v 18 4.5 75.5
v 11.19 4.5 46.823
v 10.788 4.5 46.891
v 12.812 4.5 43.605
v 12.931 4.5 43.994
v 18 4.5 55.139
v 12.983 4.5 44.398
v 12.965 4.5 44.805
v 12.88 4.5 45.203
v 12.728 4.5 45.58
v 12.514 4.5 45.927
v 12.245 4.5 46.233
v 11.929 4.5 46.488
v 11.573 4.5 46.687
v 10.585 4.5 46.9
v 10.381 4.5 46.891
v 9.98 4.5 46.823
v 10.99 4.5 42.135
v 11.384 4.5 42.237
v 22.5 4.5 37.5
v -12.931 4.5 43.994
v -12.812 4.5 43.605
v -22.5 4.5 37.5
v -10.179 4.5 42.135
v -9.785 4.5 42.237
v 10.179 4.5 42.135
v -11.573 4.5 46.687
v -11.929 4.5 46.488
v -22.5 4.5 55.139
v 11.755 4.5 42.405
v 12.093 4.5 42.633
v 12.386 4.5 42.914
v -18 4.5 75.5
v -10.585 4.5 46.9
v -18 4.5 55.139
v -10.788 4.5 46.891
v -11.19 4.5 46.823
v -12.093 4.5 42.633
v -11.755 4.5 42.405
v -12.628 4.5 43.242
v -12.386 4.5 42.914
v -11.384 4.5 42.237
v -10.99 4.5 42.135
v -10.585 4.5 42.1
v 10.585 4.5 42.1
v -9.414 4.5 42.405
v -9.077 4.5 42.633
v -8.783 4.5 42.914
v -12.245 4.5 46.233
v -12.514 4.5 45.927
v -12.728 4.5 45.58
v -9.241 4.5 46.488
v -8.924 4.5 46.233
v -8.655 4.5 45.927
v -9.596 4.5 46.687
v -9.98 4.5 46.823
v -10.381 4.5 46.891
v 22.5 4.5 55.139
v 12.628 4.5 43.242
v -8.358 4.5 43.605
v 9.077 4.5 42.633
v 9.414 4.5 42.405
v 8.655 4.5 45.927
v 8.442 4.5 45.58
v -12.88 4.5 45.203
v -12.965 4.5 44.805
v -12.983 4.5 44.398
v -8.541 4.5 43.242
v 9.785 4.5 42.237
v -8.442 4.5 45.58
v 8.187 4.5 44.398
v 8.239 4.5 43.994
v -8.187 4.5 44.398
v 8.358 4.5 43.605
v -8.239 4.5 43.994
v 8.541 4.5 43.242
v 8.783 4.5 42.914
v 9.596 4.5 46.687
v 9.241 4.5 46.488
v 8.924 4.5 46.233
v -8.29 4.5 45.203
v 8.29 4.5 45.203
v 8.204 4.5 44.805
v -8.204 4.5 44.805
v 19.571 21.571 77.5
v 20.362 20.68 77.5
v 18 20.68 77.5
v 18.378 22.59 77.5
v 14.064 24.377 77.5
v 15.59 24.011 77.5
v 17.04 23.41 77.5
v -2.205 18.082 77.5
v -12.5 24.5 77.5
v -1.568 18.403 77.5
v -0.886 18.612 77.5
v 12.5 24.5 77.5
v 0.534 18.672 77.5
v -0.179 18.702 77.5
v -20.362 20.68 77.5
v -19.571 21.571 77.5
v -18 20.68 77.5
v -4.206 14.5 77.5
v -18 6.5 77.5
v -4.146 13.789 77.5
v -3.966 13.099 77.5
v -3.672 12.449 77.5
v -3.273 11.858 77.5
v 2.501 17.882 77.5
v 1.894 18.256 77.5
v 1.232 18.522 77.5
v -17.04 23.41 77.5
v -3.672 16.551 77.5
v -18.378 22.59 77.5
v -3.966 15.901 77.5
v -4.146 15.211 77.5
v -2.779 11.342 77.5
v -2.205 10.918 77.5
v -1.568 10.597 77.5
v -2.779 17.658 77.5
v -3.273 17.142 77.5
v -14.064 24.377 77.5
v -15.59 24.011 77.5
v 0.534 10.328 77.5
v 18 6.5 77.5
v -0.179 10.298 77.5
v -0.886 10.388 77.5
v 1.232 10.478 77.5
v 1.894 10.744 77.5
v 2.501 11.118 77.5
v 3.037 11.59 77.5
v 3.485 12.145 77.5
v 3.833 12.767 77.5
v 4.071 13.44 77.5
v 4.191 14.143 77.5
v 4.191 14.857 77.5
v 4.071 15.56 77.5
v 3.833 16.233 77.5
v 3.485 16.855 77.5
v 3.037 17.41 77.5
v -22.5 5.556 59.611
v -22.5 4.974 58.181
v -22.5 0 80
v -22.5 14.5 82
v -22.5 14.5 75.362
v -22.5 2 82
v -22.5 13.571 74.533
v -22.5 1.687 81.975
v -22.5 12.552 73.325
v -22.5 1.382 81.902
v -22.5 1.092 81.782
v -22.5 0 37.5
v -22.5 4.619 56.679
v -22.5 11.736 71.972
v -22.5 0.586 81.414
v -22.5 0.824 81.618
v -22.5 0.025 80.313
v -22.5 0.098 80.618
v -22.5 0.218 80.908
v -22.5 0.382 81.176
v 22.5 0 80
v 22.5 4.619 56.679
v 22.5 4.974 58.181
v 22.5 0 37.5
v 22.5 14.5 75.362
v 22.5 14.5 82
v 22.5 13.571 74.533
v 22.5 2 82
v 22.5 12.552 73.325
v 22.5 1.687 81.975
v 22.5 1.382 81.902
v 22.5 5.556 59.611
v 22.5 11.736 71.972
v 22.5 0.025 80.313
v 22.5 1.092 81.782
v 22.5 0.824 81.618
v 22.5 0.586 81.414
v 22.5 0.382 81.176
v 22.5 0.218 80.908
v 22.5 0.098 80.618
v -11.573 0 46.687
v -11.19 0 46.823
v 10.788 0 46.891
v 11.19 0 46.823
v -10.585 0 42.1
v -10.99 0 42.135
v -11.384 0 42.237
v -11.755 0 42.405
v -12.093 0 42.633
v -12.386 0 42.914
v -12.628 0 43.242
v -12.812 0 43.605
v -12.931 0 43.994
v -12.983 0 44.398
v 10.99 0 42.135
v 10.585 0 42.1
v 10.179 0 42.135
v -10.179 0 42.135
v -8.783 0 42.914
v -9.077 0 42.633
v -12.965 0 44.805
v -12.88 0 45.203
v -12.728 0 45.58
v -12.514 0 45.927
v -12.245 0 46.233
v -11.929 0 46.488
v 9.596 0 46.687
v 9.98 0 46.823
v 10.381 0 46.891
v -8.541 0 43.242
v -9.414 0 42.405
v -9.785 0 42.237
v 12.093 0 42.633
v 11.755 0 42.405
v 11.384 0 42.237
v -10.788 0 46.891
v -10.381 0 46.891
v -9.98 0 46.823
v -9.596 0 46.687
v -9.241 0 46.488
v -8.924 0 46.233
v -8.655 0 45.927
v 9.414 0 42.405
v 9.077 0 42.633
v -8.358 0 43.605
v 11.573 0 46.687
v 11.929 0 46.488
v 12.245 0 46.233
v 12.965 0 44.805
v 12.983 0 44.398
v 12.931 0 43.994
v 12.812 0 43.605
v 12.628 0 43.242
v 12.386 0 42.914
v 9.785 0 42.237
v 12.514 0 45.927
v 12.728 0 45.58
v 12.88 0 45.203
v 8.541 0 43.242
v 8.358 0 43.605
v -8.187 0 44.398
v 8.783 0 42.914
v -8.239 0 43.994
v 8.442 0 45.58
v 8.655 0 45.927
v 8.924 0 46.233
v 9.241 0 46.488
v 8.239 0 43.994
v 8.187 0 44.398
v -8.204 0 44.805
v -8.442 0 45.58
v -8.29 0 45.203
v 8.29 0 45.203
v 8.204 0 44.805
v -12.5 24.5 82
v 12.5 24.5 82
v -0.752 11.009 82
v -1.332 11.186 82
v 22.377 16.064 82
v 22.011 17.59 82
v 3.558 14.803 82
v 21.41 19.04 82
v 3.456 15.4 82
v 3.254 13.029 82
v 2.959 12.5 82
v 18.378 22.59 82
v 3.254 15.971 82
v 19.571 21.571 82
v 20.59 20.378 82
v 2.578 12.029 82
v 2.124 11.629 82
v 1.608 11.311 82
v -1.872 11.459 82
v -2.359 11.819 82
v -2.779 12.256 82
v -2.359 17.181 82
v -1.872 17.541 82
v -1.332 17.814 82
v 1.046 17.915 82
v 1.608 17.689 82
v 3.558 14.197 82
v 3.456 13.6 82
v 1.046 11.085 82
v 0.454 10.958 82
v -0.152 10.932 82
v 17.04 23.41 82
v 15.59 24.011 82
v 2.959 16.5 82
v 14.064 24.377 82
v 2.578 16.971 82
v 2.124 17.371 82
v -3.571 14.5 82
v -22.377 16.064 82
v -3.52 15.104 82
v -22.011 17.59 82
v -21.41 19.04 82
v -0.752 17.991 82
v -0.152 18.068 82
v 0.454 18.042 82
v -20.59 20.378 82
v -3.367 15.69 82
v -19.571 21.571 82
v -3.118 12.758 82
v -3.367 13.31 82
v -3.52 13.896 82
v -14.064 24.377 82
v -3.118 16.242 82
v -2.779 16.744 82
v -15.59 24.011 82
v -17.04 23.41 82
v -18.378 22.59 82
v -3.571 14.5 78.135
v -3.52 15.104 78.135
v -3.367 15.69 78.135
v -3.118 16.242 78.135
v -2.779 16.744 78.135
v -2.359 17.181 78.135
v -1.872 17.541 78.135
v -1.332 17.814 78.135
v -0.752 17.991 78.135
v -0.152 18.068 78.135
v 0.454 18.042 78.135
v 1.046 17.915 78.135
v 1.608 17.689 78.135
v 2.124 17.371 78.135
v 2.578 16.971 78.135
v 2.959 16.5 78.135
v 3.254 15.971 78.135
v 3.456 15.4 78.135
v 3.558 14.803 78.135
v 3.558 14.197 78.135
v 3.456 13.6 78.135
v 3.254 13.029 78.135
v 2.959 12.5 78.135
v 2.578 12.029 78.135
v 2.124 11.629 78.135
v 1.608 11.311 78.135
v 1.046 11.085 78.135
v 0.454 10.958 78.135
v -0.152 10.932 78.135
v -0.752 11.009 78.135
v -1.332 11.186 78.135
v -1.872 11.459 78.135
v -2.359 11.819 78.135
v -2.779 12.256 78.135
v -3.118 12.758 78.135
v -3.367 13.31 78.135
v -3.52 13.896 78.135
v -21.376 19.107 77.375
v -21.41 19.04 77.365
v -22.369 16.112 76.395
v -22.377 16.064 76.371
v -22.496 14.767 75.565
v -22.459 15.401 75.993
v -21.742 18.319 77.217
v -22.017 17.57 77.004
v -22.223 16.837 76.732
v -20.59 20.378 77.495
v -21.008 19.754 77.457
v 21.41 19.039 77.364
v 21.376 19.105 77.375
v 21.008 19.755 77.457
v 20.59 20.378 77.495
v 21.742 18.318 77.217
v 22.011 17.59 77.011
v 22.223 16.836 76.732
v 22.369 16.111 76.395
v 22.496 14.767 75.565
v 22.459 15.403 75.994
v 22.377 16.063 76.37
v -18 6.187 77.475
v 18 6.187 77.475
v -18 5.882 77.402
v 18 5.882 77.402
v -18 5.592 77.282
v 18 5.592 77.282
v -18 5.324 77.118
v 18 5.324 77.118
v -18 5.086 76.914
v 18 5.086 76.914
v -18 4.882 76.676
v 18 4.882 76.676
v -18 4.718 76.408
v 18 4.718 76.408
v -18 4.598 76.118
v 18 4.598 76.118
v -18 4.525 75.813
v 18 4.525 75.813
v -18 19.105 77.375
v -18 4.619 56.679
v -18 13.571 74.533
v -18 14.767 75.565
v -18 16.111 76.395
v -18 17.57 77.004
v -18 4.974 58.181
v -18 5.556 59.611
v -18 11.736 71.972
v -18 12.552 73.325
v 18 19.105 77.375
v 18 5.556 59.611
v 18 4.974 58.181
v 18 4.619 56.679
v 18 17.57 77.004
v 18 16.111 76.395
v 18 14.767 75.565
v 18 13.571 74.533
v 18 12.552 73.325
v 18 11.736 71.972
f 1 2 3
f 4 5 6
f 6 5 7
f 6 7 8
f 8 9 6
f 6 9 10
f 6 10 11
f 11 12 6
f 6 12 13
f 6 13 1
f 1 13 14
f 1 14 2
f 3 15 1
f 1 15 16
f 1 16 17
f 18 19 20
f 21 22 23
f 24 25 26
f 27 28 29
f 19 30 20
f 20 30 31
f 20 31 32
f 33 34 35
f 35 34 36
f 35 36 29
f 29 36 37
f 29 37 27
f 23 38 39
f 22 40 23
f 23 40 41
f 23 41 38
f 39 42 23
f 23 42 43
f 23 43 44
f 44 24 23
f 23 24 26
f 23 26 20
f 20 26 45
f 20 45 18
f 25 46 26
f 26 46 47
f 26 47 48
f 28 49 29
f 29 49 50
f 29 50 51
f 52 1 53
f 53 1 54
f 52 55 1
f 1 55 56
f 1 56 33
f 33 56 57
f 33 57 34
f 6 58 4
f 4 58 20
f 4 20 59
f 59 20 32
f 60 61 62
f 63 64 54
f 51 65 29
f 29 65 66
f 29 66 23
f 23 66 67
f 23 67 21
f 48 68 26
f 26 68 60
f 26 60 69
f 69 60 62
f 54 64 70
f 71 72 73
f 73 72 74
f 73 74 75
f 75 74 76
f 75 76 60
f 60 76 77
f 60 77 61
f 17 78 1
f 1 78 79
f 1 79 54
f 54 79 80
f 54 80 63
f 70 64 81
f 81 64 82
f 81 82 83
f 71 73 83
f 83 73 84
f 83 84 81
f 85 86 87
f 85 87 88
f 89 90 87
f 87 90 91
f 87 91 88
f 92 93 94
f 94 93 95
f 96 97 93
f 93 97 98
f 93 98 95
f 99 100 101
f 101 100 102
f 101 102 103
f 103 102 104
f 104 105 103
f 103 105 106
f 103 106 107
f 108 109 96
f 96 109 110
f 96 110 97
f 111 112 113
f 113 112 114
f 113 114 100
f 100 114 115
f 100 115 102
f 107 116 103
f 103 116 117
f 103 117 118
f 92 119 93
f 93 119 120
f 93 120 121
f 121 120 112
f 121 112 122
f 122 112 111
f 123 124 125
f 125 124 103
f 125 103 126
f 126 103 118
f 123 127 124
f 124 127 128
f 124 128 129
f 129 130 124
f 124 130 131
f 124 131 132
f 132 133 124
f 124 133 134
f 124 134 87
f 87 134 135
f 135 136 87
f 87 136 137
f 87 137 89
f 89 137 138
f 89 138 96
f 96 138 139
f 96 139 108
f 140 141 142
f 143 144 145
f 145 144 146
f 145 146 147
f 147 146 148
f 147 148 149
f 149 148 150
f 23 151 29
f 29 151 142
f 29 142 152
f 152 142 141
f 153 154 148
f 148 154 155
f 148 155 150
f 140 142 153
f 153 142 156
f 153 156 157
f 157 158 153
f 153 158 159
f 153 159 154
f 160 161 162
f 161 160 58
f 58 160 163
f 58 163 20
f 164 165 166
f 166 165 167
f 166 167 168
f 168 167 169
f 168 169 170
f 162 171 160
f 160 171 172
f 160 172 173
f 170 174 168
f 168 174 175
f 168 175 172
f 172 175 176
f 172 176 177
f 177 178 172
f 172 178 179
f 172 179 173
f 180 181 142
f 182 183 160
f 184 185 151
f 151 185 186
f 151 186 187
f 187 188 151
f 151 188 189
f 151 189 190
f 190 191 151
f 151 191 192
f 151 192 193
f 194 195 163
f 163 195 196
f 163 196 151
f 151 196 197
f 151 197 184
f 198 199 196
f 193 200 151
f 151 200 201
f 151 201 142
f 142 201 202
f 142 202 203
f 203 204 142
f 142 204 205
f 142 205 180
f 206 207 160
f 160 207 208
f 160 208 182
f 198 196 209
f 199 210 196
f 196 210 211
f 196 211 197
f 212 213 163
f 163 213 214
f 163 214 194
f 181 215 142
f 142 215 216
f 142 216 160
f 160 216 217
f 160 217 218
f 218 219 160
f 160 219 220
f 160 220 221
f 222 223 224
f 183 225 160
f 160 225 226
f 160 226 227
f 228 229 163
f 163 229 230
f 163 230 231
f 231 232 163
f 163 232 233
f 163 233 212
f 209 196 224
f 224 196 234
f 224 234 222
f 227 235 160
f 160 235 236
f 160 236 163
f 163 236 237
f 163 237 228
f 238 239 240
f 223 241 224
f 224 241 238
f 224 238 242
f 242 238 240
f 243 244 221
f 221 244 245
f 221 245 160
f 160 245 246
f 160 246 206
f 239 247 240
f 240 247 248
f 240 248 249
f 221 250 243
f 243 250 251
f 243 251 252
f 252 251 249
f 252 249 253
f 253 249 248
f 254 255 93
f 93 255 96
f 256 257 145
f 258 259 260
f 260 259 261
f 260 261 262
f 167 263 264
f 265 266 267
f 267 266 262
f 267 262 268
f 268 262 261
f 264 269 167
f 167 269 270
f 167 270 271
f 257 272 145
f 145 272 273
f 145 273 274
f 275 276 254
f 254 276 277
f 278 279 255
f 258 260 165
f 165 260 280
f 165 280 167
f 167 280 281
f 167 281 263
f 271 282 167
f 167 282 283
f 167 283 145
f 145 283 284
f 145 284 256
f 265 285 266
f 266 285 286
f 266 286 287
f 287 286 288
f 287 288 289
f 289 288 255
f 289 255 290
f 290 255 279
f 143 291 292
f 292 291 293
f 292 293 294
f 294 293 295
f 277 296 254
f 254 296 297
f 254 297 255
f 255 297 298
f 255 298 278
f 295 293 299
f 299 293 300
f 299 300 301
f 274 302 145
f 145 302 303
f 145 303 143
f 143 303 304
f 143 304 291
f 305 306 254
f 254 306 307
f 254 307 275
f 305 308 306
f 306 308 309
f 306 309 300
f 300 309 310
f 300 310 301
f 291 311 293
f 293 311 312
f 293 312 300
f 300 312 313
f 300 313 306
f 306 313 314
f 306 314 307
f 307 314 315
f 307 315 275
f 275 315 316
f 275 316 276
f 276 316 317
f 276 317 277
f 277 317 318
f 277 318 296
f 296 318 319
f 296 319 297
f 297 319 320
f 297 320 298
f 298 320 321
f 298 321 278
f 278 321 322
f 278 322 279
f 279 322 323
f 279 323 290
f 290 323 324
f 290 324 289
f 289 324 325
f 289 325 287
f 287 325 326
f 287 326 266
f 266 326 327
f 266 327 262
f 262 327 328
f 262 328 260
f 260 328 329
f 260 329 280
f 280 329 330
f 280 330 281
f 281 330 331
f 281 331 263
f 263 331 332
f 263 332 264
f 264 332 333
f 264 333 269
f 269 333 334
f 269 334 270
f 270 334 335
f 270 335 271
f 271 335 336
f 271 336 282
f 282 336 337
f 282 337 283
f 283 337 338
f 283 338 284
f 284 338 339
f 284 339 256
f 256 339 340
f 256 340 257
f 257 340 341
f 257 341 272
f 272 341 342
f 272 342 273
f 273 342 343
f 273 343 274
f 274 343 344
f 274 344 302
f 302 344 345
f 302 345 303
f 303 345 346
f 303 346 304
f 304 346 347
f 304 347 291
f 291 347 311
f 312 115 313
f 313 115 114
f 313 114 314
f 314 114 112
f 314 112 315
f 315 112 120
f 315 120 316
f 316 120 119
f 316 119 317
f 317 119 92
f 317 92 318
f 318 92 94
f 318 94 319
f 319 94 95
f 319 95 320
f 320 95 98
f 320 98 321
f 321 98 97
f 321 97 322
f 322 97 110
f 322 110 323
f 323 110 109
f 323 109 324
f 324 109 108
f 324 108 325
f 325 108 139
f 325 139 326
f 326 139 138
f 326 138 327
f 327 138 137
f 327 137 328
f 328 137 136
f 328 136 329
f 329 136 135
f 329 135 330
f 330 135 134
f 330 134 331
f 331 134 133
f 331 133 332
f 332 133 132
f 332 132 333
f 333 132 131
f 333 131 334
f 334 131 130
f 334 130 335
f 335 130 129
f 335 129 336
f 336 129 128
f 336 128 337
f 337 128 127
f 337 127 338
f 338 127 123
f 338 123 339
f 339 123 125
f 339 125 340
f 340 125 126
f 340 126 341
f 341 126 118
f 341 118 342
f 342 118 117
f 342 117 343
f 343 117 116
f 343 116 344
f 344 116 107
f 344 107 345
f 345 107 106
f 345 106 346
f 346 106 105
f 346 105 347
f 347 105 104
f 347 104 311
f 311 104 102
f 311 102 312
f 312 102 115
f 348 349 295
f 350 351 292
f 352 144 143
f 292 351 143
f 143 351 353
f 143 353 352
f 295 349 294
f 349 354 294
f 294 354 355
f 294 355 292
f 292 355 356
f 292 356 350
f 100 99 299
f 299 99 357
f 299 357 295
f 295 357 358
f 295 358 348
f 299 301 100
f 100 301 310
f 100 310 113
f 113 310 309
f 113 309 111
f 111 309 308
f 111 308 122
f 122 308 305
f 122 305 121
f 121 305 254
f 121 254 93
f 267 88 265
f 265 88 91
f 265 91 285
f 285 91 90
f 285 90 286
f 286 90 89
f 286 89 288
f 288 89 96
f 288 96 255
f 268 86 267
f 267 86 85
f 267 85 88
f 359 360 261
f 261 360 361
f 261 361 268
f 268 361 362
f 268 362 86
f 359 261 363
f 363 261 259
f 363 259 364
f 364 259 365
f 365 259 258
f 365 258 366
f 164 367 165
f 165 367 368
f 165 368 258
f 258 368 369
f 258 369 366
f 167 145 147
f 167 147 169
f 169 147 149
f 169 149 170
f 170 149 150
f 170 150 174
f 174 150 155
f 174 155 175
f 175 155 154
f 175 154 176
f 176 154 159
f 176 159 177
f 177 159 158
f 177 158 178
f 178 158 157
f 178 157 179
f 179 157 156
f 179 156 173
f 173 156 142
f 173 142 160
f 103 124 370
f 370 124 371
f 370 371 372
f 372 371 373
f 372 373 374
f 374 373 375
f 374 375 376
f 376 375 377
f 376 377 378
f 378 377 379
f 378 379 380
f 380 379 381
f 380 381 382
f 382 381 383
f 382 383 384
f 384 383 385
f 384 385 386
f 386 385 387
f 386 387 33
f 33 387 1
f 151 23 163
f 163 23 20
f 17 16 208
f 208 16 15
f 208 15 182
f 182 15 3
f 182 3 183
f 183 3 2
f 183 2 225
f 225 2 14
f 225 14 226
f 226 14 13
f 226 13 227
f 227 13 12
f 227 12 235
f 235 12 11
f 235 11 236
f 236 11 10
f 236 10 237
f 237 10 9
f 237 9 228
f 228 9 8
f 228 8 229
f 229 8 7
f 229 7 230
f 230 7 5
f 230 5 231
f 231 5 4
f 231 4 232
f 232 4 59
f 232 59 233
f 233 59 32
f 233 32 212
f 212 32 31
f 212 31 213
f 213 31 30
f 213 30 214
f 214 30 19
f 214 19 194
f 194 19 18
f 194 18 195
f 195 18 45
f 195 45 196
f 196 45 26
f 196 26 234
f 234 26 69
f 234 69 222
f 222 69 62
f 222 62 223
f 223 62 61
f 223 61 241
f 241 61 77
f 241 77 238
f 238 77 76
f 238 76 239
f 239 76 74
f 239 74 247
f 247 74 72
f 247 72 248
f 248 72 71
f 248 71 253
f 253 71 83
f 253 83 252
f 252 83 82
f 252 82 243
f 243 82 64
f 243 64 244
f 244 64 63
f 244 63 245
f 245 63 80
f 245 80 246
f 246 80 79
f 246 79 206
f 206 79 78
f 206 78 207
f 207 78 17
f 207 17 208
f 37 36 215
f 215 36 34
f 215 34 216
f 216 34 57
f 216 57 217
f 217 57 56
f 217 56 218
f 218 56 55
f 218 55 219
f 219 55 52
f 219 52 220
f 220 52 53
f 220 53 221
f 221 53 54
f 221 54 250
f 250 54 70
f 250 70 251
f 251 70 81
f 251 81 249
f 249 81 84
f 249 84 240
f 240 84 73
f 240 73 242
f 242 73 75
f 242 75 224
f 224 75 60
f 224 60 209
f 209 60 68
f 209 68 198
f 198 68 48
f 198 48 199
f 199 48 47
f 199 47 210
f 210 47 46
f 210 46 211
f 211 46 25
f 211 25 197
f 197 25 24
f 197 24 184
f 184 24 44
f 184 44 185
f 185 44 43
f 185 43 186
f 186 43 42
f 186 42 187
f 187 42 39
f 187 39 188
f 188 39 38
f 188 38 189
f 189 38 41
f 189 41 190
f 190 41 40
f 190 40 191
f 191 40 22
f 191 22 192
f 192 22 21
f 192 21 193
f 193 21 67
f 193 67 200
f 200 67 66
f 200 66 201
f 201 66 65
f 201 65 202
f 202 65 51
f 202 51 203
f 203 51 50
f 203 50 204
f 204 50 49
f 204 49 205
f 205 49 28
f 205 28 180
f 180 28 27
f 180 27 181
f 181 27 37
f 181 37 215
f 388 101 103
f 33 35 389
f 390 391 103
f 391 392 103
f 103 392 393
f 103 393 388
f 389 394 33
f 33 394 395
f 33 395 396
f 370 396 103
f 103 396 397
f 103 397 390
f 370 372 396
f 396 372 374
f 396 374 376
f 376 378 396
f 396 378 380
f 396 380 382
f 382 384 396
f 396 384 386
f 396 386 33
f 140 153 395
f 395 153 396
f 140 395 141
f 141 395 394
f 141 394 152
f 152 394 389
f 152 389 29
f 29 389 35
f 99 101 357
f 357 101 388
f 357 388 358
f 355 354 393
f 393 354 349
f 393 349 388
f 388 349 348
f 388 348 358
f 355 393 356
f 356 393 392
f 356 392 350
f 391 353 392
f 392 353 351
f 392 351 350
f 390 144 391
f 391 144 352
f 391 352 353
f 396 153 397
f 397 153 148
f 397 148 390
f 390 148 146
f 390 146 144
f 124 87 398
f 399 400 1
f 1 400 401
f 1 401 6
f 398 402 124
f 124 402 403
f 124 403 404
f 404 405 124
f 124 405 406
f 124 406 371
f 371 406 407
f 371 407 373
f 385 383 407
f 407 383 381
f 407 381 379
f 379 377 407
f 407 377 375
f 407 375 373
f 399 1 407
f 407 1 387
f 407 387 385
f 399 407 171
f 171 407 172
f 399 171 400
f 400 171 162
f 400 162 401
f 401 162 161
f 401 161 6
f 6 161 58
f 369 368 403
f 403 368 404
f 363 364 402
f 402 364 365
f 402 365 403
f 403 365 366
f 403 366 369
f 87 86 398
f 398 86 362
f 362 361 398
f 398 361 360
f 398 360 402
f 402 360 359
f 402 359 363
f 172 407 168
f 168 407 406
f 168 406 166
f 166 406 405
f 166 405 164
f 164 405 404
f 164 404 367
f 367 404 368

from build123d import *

# Parameters (mm, degrees)
BOSS_EXTRUDE1_DEPTH               = 4.5
M5_CLEARANCE_HOLE1_D              = 5.5
M5_CLEARANCE_HOLE1_CSINK_D        = 5.55
M5_CLEARANCE_HOLE1_CSINK_ANGLE    = 90
SKETCH5_R                         = 12.5
CUT_EXTRUDE1_DEPTH                = 81.825429167
SKETCH12_W                        = 45
SKETCH12_H                        = 24.5
BOSS_EXTRUDE2_DEPTH               = 4.5
F_1_4_CLEARANCE_HOLE1_D           = 7.14248
F_1_4_CLEARANCE_HOLE1_CSINK_D     = 8.41248
F_1_4_CLEARANCE_HOLE1_CSINK_ANGLE = 90
FILLET1_R                         = 10
FILLET2_R                         = 2
SKETCH18_W                        = 106.323058396
SKETCH18_H                        = 71.002809098
CUT_EXTRUDE4_DEPTH                = 60
M4_CLEARANCE_HOLE1_D              = 4.8
BOSS_EXTRUDE3_DEPTH               = 4.5
FILLET3_R                         = 10
FILLET3_OF_MIRROR1_R              = 10


with BuildPart() as part:
    # Sketch1 → Boss-Extrude1 (new body)
    with BuildSketch(Plane(origin=(0, 0, 0), x_dir=(1, 0, 0), z_dir=(0, 1, 0))):
        with BuildLine():
            Line((-22.5, -77.5), (22.5, -77.5))
            Line((22.5, -77.5), (22.5, 3.34e-07))
            ThreePointArc((22.5, 3.34e-07), (0, 22.5), (-22.5, 3.34e-07))
            Line((-22.5, 3.34e-07), (-22.5, -77.5))
        make_face()
    extrude(amount=BOSS_EXTRUDE1_DEPTH)

    # M5 Clearance Hole1 (through all)
    with Locations(Plane(origin=(0, 4.5, 0), x_dir=(1, 0, 0), z_dir=(0, 1, 0))):
        with Locations((-6.696960066, -16.167891819), (6.696960066, -16.167891819), (6.696960066, 16.167891819), (-6.696960066, 16.167891819)):
            CounterSinkHole(M5_CLEARANCE_HOLE1_D / 2, M5_CLEARANCE_HOLE1_CSINK_D / 2, counter_sink_angle=M5_CLEARANCE_HOLE1_CSINK_ANGLE)

    # Sketch5 → Cut-Extrude1 (cut, through all)
    with BuildSketch(Plane(origin=(0, 4.5, 0), x_dir=(1, 0, 0), z_dir=(0, 1, 0))):
        with Locations(Location((0, 0, 0), (0, 0, 270))):
            Circle(SKETCH5_R)
    extrude(amount=-CUT_EXTRUDE1_DEPTH, mode=Mode.SUBTRACT)

    # Sketch12 → Boss-Extrude2 (add)
    with BuildSketch(Plane.XY.offset(77.5)):
        with Locations((0, 12.25)):
            Rectangle(SKETCH12_W, SKETCH12_H)
    extrude(amount=BOSS_EXTRUDE2_DEPTH)

    # 1/4 Clearance Hole1 (through all)
    with Locations(Plane(origin=(0, 0, 77.5), x_dir=(-1, 0, 0), z_dir=(0, 0, -1))):
        with Locations((0, 14.5)):
            CounterSinkHole(F_1_4_CLEARANCE_HOLE1_D / 2, F_1_4_CLEARANCE_HOLE1_CSINK_D / 2, counter_sink_angle=F_1_4_CLEARANCE_HOLE1_CSINK_ANGLE)

    # Fillet1
    fillet1_edges = [part.edges().sort_by_distance(p)[0] for p in [
        (22.5, 24.5, 79.75),
        (-22.5, 24.5, 79.75),
    ]]
    fillet(fillet1_edges, radius=FILLET1_R)

    # Fillet2
    fillet2_edges = [part.edges().sort_by_distance(p)[0] for p in [
        (0, 4.5, 77.5),
        (0, 0, 82),
    ]]
    fillet(fillet2_edges, radius=FILLET2_R)

    # Sketch18 → Cut-Extrude4 (cut)
    with BuildSketch(Plane.XY.offset(-22.5)):
        with Locations((20.664180994, 31.016391908)):
            Rectangle(SKETCH18_W, SKETCH18_H)
    extrude(amount=CUT_EXTRUDE4_DEPTH, mode=Mode.SUBTRACT)

    # M4 Clearance Hole1 (through all)
    with Locations(Plane(origin=(0, 0, 0), x_dir=(-1, 0, 0), z_dir=(0, -1, 0))):
        with Locations((10.58478565, -44.5), (-10.58478565, -44.5)):
            Hole(M4_CLEARANCE_HOLE1_D / 2)

    # Sketch23 → Boss-Extrude3 (add)
    with BuildSketch(Plane.ZY.offset(22.5)):
        Polygon((77.5, 14.5), (57.5, 4.5), (77.5, 4.5), align=None)
    boss_extrude3 = extrude(amount=-BOSS_EXTRUDE3_DEPTH)

    # Fillet3
    fillet3_edges = [part.edges().sort_by_distance(p)[0] for p in [
        (-20.25, 14.5, 77.5),
        (-20.25, 4.5, 57.5),
    ]]
    fillet(fillet3_edges, radius=FILLET3_R)

    # Mirror1: Boss-Extrude3 across plane
    add(boss_extrude3.mirror(Plane(origin=(0, 0, 0), x_dir=(0, 0, 1), z_dir=(1, 0, 0))))

    # Fillet3 of Mirror1
    fillet3_of_mirror1_edges = [part.edges().sort_by_distance(p)[0] for p in [
        (20.25, 14.5, 77.5),
        (20.25, 4.5, 57.5),
    ]]
    fillet(fillet3_of_mirror1_edges, radius=FILLET3_OF_MIRROR1_R)


solid = part.part
